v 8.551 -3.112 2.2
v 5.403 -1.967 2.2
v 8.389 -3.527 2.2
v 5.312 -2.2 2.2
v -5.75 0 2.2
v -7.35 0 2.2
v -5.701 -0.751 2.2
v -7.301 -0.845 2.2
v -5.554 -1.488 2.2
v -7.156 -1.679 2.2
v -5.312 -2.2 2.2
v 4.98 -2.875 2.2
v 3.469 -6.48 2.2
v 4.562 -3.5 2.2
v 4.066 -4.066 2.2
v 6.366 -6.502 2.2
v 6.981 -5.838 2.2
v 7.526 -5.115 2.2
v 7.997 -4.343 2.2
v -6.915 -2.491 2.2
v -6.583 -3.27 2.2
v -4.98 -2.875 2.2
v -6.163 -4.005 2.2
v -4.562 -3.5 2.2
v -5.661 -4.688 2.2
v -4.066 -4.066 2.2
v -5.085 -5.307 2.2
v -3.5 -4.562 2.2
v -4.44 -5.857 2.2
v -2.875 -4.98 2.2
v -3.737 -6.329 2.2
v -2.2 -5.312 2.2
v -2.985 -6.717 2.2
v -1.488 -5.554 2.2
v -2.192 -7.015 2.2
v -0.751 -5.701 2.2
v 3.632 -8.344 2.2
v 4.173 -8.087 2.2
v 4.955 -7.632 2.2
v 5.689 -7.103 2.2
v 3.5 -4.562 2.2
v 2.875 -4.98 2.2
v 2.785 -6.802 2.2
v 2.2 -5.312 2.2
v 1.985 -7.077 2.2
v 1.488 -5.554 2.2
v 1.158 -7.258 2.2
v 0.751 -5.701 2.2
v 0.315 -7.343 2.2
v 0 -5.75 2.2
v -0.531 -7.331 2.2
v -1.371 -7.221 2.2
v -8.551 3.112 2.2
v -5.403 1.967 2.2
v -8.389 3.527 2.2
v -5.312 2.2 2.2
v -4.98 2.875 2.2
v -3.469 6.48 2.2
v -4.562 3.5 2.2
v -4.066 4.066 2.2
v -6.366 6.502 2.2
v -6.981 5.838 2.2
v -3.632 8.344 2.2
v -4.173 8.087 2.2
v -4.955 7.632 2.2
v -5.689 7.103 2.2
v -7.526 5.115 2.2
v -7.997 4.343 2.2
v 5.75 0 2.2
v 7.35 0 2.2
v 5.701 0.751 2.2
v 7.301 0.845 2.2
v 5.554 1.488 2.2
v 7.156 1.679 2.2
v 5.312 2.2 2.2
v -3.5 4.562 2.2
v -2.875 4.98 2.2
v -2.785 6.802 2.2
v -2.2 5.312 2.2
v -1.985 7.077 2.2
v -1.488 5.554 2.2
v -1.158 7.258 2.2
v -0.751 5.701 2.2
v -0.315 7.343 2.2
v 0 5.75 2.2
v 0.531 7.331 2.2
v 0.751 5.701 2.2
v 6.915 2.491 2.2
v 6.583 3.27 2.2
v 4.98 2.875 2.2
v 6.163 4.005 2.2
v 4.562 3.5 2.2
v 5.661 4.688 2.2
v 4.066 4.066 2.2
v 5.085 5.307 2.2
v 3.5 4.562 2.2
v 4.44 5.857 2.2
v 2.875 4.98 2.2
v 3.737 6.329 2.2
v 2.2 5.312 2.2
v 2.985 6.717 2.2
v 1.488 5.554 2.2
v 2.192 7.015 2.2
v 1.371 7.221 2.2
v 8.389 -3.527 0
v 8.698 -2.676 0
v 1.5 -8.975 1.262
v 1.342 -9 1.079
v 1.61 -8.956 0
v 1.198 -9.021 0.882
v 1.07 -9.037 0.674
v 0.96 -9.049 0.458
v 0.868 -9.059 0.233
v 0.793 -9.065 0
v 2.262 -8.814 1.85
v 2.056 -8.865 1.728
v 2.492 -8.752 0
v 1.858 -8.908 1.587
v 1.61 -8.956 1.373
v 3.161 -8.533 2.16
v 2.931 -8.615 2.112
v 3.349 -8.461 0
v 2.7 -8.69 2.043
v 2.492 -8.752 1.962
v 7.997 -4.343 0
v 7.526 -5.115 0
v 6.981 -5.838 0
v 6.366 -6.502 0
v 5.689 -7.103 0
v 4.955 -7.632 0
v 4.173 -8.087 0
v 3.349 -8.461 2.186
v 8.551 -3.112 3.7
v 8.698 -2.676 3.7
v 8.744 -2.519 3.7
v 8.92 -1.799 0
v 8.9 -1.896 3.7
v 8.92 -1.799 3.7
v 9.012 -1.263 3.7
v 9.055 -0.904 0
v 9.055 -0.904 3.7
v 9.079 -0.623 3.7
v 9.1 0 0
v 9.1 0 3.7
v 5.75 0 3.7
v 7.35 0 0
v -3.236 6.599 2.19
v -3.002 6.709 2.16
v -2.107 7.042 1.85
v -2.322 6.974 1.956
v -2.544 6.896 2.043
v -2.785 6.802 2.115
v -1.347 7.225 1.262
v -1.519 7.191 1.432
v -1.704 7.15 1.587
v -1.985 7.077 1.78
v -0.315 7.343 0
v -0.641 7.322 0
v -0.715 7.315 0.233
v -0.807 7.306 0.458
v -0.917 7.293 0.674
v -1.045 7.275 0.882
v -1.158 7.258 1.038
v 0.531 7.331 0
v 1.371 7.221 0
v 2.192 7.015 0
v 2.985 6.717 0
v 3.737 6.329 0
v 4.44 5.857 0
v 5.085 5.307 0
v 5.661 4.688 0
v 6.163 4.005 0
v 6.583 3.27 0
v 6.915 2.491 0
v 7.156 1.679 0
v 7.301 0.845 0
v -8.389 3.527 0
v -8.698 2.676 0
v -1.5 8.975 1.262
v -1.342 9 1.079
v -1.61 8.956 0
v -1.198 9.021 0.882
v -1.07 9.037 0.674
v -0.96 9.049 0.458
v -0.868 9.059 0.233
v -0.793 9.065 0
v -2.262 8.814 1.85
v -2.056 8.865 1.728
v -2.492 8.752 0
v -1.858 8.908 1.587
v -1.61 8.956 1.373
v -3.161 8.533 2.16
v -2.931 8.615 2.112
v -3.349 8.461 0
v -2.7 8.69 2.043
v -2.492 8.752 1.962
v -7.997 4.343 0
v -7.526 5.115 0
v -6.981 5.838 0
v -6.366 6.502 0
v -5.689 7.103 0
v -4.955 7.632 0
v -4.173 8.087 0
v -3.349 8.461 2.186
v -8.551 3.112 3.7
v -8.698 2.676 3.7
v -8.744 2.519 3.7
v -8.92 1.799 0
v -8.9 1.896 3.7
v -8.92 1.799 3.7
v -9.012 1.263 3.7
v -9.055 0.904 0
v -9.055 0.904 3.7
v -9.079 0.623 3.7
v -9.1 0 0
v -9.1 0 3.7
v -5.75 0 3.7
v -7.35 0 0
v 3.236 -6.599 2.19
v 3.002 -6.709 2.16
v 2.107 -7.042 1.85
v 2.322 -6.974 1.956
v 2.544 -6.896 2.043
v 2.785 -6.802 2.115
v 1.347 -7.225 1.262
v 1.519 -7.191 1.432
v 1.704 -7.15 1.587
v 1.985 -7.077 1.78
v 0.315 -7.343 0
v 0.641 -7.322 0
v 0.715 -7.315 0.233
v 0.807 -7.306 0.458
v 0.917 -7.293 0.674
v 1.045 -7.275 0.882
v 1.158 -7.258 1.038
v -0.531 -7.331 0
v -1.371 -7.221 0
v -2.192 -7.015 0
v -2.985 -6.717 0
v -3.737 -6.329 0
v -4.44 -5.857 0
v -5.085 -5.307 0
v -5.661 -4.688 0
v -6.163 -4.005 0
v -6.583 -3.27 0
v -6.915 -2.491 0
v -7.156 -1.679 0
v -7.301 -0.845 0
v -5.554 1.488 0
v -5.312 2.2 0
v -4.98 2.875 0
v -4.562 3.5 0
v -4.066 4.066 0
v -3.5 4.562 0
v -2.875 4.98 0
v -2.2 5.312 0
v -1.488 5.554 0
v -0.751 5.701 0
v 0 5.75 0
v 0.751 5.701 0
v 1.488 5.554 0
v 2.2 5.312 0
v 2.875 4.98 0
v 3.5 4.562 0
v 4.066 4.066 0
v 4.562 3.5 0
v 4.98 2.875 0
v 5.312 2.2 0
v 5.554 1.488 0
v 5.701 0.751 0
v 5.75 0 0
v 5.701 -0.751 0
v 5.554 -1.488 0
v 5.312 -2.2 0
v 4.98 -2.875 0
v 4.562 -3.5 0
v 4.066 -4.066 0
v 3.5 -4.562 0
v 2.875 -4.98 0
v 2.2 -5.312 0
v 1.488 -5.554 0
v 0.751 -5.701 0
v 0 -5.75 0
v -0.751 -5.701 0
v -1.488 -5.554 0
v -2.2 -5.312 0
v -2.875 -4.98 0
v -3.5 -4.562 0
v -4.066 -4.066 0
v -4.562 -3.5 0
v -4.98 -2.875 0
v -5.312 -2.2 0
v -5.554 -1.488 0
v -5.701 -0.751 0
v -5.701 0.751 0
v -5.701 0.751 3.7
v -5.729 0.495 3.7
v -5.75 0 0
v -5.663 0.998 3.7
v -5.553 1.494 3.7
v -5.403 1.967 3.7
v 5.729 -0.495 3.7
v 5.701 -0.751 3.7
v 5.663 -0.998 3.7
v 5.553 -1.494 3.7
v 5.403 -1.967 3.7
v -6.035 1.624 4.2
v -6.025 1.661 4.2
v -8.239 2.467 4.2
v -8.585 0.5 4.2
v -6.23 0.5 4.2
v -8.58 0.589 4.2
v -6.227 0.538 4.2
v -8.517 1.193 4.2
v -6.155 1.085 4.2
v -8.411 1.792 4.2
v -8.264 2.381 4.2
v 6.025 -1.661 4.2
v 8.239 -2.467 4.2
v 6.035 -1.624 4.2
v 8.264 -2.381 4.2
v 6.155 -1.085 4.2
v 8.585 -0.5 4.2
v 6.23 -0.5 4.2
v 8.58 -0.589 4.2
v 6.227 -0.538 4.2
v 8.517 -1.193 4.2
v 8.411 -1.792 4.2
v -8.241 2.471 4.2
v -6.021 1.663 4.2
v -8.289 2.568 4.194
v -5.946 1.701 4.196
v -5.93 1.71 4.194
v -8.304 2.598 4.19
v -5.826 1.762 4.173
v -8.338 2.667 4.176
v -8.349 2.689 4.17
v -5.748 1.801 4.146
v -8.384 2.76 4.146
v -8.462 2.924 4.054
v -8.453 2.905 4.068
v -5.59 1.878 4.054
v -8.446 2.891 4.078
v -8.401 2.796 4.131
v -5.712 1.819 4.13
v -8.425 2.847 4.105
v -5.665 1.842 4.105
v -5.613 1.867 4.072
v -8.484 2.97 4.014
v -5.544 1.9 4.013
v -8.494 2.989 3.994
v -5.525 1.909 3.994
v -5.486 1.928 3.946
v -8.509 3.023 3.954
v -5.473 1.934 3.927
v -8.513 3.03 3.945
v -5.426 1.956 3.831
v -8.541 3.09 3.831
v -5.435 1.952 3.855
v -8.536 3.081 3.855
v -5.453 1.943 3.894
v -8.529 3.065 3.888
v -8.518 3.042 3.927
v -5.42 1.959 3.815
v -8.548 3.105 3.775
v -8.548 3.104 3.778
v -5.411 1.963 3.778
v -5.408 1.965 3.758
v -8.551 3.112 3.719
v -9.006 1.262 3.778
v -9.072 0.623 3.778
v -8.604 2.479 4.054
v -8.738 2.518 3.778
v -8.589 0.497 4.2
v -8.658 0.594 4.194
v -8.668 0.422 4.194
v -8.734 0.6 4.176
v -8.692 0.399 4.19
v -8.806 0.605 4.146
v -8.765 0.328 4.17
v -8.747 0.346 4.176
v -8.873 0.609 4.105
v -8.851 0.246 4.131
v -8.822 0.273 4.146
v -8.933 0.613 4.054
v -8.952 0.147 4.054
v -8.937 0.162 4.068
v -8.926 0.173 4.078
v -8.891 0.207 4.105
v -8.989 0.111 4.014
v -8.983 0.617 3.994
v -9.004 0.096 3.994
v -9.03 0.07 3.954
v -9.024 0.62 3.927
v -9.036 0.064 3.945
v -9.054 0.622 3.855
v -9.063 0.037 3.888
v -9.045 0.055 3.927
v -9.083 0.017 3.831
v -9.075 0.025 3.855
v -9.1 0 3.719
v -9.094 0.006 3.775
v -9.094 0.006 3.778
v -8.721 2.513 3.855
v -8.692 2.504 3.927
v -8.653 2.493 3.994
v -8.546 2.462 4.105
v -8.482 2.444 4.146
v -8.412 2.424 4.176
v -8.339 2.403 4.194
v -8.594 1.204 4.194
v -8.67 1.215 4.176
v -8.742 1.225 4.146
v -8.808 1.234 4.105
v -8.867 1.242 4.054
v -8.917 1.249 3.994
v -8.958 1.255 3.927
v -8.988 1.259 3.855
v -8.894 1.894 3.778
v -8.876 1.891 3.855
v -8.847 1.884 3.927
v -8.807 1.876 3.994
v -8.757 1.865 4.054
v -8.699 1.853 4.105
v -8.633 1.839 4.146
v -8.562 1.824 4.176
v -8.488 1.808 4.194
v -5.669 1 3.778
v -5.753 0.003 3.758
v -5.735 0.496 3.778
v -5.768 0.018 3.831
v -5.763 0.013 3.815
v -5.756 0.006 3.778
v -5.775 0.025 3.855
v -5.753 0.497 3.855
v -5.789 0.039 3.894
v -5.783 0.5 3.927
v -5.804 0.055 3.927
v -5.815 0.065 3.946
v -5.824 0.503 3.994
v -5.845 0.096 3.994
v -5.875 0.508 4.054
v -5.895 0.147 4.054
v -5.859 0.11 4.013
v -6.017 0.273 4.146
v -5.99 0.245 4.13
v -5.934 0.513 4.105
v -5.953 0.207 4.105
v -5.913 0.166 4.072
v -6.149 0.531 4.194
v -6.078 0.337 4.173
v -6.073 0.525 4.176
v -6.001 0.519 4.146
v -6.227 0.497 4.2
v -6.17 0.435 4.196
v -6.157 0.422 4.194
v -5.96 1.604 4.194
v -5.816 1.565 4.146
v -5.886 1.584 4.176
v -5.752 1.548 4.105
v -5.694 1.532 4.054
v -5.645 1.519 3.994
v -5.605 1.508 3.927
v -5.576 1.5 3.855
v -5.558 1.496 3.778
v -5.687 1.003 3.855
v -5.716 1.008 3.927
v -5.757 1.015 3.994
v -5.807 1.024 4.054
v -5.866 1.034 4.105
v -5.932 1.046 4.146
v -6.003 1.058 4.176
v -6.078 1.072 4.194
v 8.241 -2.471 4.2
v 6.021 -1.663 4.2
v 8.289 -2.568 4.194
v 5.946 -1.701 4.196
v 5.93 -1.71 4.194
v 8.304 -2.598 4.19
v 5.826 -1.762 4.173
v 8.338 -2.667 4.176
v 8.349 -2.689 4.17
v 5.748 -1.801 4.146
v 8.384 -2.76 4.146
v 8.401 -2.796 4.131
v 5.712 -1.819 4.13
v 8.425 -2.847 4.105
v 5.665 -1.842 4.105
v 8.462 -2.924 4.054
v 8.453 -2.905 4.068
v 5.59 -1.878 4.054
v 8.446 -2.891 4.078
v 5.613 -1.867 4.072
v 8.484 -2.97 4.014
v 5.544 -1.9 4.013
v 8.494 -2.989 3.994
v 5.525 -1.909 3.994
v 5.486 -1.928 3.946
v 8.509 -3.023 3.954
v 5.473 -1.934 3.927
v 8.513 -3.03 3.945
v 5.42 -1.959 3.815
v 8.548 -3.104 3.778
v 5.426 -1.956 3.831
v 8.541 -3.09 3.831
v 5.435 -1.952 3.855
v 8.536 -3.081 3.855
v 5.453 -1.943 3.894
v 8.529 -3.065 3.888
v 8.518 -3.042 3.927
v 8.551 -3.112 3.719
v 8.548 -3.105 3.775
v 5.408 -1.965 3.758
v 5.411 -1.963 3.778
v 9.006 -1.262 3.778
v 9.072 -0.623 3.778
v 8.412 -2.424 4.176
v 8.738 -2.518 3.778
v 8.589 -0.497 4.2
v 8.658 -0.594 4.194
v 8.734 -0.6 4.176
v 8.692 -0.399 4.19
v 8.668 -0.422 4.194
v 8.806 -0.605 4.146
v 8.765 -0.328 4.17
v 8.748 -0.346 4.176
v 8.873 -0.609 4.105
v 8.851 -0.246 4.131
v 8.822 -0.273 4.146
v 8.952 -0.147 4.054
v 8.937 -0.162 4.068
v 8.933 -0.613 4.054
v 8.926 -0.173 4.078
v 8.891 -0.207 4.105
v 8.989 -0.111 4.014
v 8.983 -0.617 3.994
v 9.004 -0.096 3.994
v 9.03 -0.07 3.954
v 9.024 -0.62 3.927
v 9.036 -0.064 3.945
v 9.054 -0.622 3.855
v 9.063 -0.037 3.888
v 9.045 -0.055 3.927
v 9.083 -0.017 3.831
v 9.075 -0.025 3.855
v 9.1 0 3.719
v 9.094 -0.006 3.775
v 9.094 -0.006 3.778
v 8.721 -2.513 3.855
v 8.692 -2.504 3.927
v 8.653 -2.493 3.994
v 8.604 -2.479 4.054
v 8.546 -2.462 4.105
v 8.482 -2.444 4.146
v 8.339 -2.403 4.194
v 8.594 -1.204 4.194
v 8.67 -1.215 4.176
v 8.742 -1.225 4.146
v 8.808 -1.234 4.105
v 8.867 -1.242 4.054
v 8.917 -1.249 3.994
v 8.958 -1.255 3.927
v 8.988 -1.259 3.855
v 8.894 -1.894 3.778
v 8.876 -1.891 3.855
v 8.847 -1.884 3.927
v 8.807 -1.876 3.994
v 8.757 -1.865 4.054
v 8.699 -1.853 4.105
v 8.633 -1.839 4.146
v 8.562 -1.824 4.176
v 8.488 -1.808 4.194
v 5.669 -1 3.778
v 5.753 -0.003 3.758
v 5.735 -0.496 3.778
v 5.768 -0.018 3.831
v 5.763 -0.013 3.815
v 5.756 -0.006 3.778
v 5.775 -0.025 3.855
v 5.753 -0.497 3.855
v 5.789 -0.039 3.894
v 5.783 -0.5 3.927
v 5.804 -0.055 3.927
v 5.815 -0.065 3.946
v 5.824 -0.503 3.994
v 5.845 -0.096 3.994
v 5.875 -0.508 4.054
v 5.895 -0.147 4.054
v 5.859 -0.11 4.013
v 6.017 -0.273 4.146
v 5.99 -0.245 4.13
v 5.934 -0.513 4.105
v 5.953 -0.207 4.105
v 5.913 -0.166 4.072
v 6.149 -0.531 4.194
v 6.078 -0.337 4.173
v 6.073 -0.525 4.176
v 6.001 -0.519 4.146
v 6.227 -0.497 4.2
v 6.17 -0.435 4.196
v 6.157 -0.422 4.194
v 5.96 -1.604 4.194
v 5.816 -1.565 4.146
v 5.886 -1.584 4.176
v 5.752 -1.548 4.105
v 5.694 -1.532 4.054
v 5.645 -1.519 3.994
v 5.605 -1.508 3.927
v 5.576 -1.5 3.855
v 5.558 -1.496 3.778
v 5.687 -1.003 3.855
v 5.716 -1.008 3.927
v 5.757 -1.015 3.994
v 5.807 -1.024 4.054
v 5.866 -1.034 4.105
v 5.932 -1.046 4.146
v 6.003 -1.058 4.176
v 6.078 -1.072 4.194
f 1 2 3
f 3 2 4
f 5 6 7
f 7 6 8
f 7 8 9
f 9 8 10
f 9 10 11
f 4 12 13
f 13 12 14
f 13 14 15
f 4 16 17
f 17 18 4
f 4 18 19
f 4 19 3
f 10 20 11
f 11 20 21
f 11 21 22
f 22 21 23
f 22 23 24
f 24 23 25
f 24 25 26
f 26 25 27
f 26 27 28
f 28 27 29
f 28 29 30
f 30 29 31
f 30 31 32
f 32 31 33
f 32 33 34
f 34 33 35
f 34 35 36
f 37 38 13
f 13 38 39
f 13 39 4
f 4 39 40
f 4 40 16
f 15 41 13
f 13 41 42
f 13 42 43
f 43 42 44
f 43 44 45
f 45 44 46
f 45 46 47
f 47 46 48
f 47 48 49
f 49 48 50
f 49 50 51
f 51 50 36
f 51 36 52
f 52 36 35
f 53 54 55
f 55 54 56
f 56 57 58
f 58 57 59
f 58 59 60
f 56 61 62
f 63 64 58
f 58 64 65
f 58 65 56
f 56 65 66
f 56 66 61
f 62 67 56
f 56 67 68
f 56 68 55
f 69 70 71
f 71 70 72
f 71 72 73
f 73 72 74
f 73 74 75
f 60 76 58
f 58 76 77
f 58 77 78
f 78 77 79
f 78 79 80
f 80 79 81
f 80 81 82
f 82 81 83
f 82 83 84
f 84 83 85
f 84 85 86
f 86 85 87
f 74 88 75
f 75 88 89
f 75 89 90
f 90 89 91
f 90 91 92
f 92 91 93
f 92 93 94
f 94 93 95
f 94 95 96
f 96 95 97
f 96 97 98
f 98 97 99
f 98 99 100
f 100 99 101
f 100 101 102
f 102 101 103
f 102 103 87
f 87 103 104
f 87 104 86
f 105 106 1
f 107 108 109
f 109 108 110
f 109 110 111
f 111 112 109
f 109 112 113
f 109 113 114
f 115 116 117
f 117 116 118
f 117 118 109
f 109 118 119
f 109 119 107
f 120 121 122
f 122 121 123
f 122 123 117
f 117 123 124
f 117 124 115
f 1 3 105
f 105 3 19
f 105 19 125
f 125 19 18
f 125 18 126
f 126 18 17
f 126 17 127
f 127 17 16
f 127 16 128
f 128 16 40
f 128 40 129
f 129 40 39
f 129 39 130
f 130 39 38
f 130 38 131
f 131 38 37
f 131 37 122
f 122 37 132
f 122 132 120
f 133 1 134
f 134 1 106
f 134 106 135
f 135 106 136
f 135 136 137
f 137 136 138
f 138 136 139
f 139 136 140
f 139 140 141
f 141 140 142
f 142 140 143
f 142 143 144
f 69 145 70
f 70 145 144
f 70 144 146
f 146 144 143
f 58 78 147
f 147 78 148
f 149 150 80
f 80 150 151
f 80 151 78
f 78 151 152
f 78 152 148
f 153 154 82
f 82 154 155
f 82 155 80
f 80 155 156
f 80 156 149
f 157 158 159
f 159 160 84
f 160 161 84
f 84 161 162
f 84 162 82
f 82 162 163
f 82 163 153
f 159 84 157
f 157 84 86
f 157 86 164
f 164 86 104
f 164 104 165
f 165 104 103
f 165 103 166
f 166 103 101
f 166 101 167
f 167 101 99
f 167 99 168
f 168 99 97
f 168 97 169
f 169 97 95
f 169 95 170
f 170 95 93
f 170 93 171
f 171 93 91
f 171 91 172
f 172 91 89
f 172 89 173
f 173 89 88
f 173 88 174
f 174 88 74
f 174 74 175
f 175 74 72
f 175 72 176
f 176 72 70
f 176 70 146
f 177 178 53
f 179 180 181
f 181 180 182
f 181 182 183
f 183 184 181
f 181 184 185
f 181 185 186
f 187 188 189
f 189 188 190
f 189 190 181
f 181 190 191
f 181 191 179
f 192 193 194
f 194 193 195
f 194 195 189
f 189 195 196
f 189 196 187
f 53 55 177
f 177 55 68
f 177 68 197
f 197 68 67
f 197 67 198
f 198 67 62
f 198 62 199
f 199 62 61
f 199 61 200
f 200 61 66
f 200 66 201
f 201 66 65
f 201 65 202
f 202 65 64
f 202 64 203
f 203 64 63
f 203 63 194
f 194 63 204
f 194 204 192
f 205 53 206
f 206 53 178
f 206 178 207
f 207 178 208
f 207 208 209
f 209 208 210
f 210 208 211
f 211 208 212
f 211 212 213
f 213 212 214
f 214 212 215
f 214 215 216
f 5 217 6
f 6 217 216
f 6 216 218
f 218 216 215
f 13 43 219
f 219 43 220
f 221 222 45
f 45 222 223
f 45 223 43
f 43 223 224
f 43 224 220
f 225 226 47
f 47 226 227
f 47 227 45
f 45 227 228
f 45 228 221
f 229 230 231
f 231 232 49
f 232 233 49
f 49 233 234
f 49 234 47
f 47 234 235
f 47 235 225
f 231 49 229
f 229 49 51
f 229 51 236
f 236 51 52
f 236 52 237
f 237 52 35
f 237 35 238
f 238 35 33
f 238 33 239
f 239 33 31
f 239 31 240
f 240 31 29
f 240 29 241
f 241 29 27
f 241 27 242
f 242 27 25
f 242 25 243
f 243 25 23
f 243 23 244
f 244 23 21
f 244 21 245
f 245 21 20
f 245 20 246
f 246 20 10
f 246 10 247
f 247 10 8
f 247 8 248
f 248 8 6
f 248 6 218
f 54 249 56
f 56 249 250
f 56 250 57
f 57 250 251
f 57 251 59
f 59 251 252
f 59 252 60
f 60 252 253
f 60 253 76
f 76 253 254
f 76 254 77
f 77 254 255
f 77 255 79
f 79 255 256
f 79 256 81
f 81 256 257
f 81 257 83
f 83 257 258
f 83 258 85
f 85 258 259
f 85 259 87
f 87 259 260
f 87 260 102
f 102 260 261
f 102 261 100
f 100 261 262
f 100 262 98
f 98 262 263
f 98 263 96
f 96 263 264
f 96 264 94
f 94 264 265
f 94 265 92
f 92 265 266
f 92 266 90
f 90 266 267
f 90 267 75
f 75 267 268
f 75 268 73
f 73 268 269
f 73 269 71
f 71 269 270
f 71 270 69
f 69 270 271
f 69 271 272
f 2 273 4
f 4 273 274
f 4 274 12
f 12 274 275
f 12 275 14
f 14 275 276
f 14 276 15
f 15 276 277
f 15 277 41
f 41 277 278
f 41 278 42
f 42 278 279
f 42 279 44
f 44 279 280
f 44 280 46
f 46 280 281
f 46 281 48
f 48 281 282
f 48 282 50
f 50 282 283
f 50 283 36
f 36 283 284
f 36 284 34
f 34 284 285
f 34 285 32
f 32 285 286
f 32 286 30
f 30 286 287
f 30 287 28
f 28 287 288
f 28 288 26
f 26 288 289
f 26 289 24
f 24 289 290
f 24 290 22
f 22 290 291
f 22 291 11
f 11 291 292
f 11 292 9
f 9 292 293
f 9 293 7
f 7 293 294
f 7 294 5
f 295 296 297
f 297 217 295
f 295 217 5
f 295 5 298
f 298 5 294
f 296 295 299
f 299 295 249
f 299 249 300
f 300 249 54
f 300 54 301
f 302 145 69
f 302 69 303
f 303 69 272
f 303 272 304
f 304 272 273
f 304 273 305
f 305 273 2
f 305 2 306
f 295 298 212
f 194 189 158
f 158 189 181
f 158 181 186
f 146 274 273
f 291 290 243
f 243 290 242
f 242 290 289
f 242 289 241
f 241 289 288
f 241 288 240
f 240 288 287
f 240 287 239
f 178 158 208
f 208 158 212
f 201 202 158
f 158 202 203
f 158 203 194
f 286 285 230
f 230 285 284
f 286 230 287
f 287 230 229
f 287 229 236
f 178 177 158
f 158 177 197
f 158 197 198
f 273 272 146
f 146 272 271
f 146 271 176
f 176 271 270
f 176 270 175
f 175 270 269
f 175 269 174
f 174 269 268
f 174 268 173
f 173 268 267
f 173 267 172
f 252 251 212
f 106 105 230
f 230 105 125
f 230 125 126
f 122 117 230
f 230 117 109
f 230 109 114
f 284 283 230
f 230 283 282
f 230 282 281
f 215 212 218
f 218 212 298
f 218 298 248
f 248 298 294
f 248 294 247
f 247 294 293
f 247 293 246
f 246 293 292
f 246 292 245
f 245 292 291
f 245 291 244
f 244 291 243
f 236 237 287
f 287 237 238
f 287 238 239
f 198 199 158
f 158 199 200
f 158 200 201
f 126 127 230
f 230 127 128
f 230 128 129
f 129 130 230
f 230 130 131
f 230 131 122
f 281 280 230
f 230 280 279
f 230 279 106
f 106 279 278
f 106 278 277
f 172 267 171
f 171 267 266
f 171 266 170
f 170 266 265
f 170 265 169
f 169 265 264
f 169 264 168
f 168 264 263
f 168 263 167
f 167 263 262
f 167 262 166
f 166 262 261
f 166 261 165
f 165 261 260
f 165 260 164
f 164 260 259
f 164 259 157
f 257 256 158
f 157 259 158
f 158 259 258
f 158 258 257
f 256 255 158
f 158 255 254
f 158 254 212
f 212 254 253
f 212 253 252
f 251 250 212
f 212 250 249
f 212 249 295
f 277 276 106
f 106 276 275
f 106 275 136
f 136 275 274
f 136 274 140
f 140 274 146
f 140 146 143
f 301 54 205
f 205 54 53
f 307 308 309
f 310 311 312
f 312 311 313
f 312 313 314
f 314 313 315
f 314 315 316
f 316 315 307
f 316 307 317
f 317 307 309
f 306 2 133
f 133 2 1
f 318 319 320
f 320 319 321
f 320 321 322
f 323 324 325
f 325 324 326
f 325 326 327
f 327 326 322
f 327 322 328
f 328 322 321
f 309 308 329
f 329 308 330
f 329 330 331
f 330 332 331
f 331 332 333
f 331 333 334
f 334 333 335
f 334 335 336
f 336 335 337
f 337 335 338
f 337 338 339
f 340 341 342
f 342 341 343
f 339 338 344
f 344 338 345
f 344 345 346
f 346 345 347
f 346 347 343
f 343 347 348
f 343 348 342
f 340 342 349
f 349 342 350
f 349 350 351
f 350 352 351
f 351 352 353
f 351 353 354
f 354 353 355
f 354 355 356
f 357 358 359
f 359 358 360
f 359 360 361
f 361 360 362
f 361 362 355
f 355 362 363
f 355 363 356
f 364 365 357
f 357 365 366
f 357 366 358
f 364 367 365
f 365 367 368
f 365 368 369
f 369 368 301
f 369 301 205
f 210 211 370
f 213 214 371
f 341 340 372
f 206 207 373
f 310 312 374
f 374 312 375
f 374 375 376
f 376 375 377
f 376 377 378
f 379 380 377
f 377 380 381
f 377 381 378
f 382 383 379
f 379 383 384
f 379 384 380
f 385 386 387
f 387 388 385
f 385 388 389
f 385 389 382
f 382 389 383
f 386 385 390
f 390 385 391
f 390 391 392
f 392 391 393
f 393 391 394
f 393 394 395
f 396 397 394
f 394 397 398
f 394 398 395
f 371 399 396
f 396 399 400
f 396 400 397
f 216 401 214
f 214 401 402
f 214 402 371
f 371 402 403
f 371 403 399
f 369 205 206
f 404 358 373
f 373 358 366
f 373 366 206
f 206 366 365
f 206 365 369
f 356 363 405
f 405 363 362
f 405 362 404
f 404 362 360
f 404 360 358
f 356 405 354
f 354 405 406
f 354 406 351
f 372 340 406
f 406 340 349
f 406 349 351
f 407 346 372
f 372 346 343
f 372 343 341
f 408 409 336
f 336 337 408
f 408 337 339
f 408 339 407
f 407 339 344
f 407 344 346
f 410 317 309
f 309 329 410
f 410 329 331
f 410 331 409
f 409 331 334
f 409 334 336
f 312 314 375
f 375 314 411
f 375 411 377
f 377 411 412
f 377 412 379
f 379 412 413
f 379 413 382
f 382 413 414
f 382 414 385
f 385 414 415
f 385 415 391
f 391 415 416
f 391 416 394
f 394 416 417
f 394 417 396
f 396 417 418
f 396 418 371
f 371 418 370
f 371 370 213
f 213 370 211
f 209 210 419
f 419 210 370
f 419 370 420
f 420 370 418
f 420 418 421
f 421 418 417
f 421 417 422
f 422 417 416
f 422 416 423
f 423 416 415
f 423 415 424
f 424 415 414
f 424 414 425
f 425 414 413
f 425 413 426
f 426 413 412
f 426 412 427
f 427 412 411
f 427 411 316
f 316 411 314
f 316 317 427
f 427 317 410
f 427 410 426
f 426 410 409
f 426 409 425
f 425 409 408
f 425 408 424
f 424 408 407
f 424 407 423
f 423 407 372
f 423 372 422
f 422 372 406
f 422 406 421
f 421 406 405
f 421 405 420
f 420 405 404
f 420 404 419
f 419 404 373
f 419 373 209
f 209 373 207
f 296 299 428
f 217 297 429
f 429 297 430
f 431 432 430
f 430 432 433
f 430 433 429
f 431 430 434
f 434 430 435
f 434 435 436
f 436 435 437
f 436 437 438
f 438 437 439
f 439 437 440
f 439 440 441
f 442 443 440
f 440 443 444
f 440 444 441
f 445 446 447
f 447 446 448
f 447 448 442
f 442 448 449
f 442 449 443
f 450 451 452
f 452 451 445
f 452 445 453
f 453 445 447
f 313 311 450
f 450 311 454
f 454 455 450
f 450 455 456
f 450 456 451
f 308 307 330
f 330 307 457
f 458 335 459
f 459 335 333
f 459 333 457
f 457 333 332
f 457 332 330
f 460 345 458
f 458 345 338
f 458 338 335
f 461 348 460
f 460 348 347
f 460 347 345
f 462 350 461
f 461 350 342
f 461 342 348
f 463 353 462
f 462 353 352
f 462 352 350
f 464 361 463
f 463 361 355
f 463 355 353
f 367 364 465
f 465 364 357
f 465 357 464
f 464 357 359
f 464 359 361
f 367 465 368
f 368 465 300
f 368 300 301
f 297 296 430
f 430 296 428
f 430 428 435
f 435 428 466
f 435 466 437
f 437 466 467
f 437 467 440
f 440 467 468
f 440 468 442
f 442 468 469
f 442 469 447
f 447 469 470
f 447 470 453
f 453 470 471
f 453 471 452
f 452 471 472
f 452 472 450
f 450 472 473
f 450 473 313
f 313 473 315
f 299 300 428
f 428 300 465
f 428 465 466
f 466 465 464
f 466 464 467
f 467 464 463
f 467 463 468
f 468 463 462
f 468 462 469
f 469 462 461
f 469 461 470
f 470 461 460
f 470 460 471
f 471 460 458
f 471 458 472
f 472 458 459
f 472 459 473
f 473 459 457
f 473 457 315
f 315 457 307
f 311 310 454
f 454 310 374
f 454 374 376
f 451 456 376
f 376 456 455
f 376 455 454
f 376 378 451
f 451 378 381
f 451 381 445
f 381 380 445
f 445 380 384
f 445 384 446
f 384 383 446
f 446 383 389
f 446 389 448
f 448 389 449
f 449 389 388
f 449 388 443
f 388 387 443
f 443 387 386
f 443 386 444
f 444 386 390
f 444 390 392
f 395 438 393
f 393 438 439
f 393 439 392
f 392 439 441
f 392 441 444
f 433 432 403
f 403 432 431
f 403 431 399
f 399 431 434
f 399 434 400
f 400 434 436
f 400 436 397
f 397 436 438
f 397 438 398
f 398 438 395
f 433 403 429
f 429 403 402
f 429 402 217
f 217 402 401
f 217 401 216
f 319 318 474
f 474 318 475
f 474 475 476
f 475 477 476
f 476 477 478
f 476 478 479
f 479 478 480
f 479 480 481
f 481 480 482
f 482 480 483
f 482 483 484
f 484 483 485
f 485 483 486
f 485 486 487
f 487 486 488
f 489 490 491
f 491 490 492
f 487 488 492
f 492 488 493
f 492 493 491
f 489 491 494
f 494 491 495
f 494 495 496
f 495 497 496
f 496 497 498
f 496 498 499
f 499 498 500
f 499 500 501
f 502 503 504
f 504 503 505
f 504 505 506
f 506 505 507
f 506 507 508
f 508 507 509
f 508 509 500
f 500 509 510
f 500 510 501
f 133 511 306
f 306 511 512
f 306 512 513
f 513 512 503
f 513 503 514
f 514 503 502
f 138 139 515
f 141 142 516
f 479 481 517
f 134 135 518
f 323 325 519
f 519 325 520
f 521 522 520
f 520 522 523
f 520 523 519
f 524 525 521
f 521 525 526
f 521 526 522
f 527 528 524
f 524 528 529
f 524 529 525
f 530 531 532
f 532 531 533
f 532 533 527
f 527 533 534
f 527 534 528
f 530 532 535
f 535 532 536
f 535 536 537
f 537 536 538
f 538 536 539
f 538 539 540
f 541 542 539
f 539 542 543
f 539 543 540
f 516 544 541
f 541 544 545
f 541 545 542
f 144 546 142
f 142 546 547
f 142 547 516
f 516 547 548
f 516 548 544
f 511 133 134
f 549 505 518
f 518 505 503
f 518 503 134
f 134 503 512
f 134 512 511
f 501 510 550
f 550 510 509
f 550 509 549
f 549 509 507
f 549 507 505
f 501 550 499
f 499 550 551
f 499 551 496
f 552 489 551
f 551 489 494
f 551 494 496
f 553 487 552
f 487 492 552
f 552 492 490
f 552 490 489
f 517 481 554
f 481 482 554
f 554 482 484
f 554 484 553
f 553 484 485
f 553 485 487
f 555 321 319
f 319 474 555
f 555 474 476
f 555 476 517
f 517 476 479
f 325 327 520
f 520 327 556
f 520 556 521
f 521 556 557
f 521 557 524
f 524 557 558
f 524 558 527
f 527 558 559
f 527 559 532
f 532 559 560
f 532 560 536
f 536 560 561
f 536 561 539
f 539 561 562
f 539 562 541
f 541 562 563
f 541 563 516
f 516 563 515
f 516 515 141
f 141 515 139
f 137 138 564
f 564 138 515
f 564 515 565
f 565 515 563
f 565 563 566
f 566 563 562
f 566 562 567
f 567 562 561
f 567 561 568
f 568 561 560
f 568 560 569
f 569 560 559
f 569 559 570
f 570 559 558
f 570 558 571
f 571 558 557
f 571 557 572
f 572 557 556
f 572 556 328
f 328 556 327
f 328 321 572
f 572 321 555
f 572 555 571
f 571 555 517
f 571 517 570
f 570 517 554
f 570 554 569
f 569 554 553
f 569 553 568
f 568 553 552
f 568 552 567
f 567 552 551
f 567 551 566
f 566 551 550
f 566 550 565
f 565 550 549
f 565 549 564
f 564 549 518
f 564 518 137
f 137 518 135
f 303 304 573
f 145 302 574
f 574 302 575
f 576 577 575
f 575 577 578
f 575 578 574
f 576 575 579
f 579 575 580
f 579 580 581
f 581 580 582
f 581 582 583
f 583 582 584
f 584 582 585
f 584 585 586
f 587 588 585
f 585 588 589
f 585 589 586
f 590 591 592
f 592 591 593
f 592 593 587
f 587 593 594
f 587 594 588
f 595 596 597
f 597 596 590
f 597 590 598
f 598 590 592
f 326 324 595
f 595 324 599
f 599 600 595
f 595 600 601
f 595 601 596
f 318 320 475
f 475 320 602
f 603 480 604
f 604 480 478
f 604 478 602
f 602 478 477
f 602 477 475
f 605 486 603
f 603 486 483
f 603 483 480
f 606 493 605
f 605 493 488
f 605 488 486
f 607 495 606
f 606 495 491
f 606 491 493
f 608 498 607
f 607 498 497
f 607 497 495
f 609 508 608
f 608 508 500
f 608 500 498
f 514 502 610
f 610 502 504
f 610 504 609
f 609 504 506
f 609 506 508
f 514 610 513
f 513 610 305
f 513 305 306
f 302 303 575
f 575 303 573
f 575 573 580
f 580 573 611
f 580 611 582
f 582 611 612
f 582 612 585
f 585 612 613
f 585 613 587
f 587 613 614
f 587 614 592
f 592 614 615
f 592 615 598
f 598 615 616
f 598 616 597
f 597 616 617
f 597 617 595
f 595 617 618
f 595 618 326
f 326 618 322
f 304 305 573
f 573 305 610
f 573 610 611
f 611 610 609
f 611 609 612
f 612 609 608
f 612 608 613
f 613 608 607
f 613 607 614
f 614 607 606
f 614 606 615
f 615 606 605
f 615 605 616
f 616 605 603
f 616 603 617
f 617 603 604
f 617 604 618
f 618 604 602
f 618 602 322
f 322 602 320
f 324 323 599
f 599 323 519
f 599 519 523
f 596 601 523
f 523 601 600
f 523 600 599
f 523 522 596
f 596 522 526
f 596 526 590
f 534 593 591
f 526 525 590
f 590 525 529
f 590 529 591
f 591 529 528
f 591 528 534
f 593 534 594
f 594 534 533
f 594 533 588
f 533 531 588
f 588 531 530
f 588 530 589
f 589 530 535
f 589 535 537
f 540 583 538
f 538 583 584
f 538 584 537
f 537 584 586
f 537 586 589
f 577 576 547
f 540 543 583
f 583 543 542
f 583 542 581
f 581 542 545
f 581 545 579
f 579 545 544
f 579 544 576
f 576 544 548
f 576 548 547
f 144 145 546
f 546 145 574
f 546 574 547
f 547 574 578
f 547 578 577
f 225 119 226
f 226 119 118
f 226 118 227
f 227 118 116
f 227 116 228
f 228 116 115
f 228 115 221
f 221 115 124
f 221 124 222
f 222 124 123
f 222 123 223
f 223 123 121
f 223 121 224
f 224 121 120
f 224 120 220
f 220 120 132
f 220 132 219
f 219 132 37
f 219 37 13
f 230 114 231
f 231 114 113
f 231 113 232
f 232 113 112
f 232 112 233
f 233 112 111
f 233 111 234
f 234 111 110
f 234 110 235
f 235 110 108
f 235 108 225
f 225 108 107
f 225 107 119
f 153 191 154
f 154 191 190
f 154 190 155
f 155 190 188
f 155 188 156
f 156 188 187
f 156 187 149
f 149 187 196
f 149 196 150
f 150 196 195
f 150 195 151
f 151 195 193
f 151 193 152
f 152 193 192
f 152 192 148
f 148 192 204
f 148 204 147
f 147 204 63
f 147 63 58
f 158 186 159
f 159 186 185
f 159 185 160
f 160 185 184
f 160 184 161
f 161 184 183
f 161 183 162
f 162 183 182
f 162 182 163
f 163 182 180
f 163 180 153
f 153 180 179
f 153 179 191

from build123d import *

# Parameters (mm, degrees)
BOSS_EXTRUDE1_DEPTH = 2.2
BOSS_EXTRUDE2_DEPTH = 2
FILLET1_R           = 0.5
FILLET2_R           = 3


with BuildPart() as part:
    # Sketch3 → Boss-Extrude1 (new body)
    with BuildSketch(Plane.XY):
        with BuildLine():
            ThreePointArc((-7.35, 0), (-7.238336985, 1.276314106), (-6.906740763, 2.513848053))
            Line((-6.906740763, 2.513848053), (-8.551202849, 3.112383304))
            ThreePointArc((-8.551202849, 3.112383304), (-8.961750552, 1.580198417), (-9.1, 0))
            Line((-9.1, 0), (-7.35, 0))
        make_face()
        with BuildLine():
            Line((-8.551202849, 3.112383304), (-6.906740763, 2.513848053))
            ThreePointArc((-6.906740763, 2.513848053), (-4.474396503, 5.831147051), (-0.640594709, 7.322031031))
            Line((-0.640594709, 7.322031031), (-0.793117259, 9.065371753))
            ThreePointArc((-0.793117259, 9.065371753), (-5.539729004, 7.219515397), (-8.551202849, 3.112383304))
        make_face()
        with BuildLine():
            Line((3.550704156, 6.15), (7.101408311, 0))
            Line((7.101408311, 0), (7.35, 0))
            ThreePointArc((7.35, 0), (4.965588026, 5.418988426), (-0.640594709, 7.322031031))
            Line((-0.640594709, 7.322031031), (-0.538055281, 6.15))
            Line((-0.538055281, 6.15), (3.550704156, 6.15))
        make_face()
        with BuildLine():
            ThreePointArc((-0.501145521, 5.728119514), (3.884643694, 4.239344687), (5.75, 0))
            Line((5.75, 0), (7.101408311, 0))
            Line((7.101408311, 0), (3.550704156, 6.15))
            Line((3.550704156, 6.15), (-0.538055281, 6.15))
            Line((-0.538055281, 6.15), (-0.501145521, 5.728119514))
        make_face()
        with BuildLine():
            Line((-5.868261699, 2.135872585), (-5.40323257, 1.966615824))
            ThreePointArc((-5.40323257, 1.966615824), (-3.500378217, 4.561781707), (-0.501145521, 5.728119514))
            Line((-0.501145521, 5.728119514), (-0.538055281, 6.15))
            Line((-0.538055281, 6.15), (-3.550704156, 6.15))
            Line((-3.550704156, 6.15), (-5.868261699, 2.135872585))
        make_face()
        with BuildLine():
            Line((-6.906740763, 2.513848053), (-5.868261699, 2.135872585))
            Line((-5.868261699, 2.135872585), (-3.550704156, 6.15))
            Line((-3.550704156, 6.15), (-0.538055281, 6.15))
            Line((-0.538055281, 6.15), (-0.640594709, 7.322031031))
            ThreePointArc((-0.640594709, 7.322031031), (-4.474396503, 5.831147051), (-6.906740763, 2.513848053))
        make_face()
        with BuildLine():
            Line((-7.101408311, 0), (-5.868261699, 2.135872585))
            Line((-5.868261699, 2.135872585), (-6.906740763, 2.513848053))
            ThreePointArc((-6.906740763, 2.513848053), (-7.238336985, 1.276314106), (-7.35, 0))
            Line((-7.35, 0), (-7.101408311, 0))
        make_face()
        with BuildLine():
            ThreePointArc((-5.75, 0), (-5.66264458, 0.998477022), (-5.40323257, 1.966615824))
            Line((-5.40323257, 1.966615824), (-5.868261699, 2.135872585))
            Line((-5.868261699, 2.135872585), (-7.101408311, 0))
            Line((-7.101408311, 0), (-5.75, 0))
        make_face()
        with BuildLine():
            Line((7.101408311, 0), (5.868261699, -2.135872585))
            Line((5.868261699, -2.135872585), (6.906740763, -2.513848053))
            ThreePointArc((6.906740763, -2.513848053), (7.238336985, -1.276314106), (7.35, 0))
            Line((7.35, 0), (7.101408311, 0))
        make_face()
        with BuildLine():
            ThreePointArc((5.75, 0), (5.66264458, -0.998477022), (5.40323257, -1.966615824))
            Line((5.40323257, -1.966615824), (5.868261699, -2.135872585))
            Line((5.868261699, -2.135872585), (7.101408311, 0))
            Line((7.101408311, 0), (5.75, 0))
        make_face()
        with BuildLine():
            Line((6.906740763, -2.513848053), (5.868261699, -2.135872585))
            Line((5.868261699, -2.135872585), (3.550704156, -6.15))
            Line((3.550704156, -6.15), (0.538055281, -6.15))
            Line((0.538055281, -6.15), (0.640594709, -7.322031031))
            ThreePointArc((0.640594709, -7.322031031), (4.474396503, -5.831147051), (6.906740763, -2.513848053))
        make_face()
        with BuildLine():
            Line((5.868261699, -2.135872585), (5.40323257, -1.966615824))
            ThreePointArc((5.40323257, -1.966615824), (3.500378217, -4.561781707), (0.501145521, -5.728119514))
            Line((0.501145521, -5.728119514), (0.538055281, -6.15))
            Line((0.538055281, -6.15), (3.550704156, -6.15))
            Line((3.550704156, -6.15), (5.868261699, -2.135872585))
        make_face()
        with BuildLine():
            Line((-3.550704156, -6.15), (-7.101408311, 0))
            Line((-7.101408311, 0), (-7.35, 0))
            ThreePointArc((-7.35, 0), (-4.965588026, -5.418988426), (0.640594709, -7.322031031))
            Line((0.640594709, -7.322031031), (0.538055281, -6.15))
            Line((0.538055281, -6.15), (-3.550704156, -6.15))
        make_face()
        with BuildLine():
            ThreePointArc((0.501145521, -5.728119514), (-3.884643694, -4.239344687), (-5.75, 0))
            Line((-5.75, 0), (-7.101408311, 0))
            Line((-7.101408311, 0), (-3.550704156, -6.15))
            Line((-3.550704156, -6.15), (0.538055281, -6.15))
            Line((0.538055281, -6.15), (0.501145521, -5.728119514))
        make_face()
        with BuildLine():
            Line((8.551202849, -3.112383304), (6.906740763, -2.513848053))
            ThreePointArc((6.906740763, -2.513848053), (4.474396503, -5.831147051), (0.640594709, -7.322031031))
            Line((0.640594709, -7.322031031), (0.793117259, -9.065371753))
            ThreePointArc((0.793117259, -9.065371753), (5.539729004, -7.219515397), (8.551202849, -3.112383304))
        make_face()
        with BuildLine():
            ThreePointArc((7.35, 0), (7.238336985, -1.276314106), (6.906740763, -2.513848053))
            Line((6.906740763, -2.513848053), (8.551202849, -3.112383304))
            ThreePointArc((8.551202849, -3.112383304), (8.961750552, -1.580198417), (9.1, 0))
            Line((9.1, 0), (7.35, 0))
        make_face()
    extrude(amount=BOSS_EXTRUDE1_DEPTH)

    # Sketch4 → Boss-Extrude2 (add)
    with BuildSketch(Plane.XY.offset(2.2)):
        with BuildLine():
            Line((-7.35, 0), (-5.75, 0))
            ThreePointArc((-5.75, 0), (-5.66264458, 0.998477022), (-5.40323257, 1.966615824))
            Line((-5.40323257, 1.966615824), (-8.551202849, 3.112383304))
            ThreePointArc((-8.551202849, 3.112383304), (-8.961750552, 1.580198417), (-9.1, 0))
            Line((-9.1, 0), (-7.35, 0))
        make_face()
        with BuildLine():
            Line((7.35, 0), (5.75, 0))
            ThreePointArc((5.75, 0), (5.66264458, -0.998477022), (5.40323257, -1.966615824))
            Line((5.40323257, -1.966615824), (8.551202849, -3.112383304))
            ThreePointArc((8.551202849, -3.112383304), (8.961750552, -1.580198417), (9.1, 0))
            Line((9.1, 0), (7.35, 0))
        make_face()
    extrude(amount=BOSS_EXTRUDE2_DEPTH)

    # Fillet1
    fillet1_edges = [part.edges().sort_by_distance(p)[0] for p in [
        (-5.66264458, 0.998477022, 4.2),
        (-6.977217709, 2.539499564, 4.2),
        (-8.961750552, 1.580198417, 4.2),
        (-7.425, 0, 4.2),
        (5.66264458, -0.998477022, 4.2),
        (6.977217709, -2.539499564, 4.2),
        (8.961750552, -1.580198417, 4.2),
        (7.425, 0, 4.2),
    ]]
    fillet(fillet1_edges, radius=FILLET1_R)

    # Fillet2
    # the kernel refuses this fillet: 3 mm, written as the material it takes off along each edge
    with BuildSketch(Plane(origin=(0.010596731, -0.121121189, 2.2), x_dir=(0.9961946980917455, 0.08715574274765829, 0), z_dir=(0.0871557427476583, -0.9961946980917455, 0))) as fillet2_piece_1_section:
        with BuildLine():
            CenterArc((2.891366459, -3), FILLET2_R, 90, 74.533990047)
            Line((0, -2.2), (0, 0))
            Line((0, 0), (2.891366459, 0))
        make_face()
    fillet2_piece_1 = extrude(amount=16.206832295, mode=Mode.PRIVATE)
    fillet2_piece_1 = fillet2_piece_1 - Plane(origin=(0, 0, 1.592242212), x_dir=(1, 0, 0), z_dir=(0, 0, -1)) * Cylinder(7.35, 44, mode=Mode.PRIVATE)
    add(fillet2_piece_1, mode=Mode.SUBTRACT)
    with BuildSketch(Plane(origin=(-0.010596731, 0.121121189, 2.2), x_dir=(-0.9961946980917455, -0.08715574274765826, 0), z_dir=(-0.08715574274765826, 0.9961946980917455, 0))) as fillet2_piece_2_section:
        with BuildLine():
            CenterArc((2.891366459, -3), FILLET2_R, 90, 74.533990047)
            Line((0, -2.2), (0, 0))
            Line((0, 0), (2.891366459, 0))
        make_face()
    fillet2_piece_2 = extrude(amount=16.206832295, mode=Mode.PRIVATE)
    fillet2_piece_2 = fillet2_piece_2 - Plane(origin=(0, 0, 1.592242212), x_dir=(1, 0, 0), z_dir=(0, 0, -1)) * Cylinder(7.35, 44, mode=Mode.PRIVATE)
    add(fillet2_piece_2, mode=Mode.SUBTRACT)


solid = part.part
